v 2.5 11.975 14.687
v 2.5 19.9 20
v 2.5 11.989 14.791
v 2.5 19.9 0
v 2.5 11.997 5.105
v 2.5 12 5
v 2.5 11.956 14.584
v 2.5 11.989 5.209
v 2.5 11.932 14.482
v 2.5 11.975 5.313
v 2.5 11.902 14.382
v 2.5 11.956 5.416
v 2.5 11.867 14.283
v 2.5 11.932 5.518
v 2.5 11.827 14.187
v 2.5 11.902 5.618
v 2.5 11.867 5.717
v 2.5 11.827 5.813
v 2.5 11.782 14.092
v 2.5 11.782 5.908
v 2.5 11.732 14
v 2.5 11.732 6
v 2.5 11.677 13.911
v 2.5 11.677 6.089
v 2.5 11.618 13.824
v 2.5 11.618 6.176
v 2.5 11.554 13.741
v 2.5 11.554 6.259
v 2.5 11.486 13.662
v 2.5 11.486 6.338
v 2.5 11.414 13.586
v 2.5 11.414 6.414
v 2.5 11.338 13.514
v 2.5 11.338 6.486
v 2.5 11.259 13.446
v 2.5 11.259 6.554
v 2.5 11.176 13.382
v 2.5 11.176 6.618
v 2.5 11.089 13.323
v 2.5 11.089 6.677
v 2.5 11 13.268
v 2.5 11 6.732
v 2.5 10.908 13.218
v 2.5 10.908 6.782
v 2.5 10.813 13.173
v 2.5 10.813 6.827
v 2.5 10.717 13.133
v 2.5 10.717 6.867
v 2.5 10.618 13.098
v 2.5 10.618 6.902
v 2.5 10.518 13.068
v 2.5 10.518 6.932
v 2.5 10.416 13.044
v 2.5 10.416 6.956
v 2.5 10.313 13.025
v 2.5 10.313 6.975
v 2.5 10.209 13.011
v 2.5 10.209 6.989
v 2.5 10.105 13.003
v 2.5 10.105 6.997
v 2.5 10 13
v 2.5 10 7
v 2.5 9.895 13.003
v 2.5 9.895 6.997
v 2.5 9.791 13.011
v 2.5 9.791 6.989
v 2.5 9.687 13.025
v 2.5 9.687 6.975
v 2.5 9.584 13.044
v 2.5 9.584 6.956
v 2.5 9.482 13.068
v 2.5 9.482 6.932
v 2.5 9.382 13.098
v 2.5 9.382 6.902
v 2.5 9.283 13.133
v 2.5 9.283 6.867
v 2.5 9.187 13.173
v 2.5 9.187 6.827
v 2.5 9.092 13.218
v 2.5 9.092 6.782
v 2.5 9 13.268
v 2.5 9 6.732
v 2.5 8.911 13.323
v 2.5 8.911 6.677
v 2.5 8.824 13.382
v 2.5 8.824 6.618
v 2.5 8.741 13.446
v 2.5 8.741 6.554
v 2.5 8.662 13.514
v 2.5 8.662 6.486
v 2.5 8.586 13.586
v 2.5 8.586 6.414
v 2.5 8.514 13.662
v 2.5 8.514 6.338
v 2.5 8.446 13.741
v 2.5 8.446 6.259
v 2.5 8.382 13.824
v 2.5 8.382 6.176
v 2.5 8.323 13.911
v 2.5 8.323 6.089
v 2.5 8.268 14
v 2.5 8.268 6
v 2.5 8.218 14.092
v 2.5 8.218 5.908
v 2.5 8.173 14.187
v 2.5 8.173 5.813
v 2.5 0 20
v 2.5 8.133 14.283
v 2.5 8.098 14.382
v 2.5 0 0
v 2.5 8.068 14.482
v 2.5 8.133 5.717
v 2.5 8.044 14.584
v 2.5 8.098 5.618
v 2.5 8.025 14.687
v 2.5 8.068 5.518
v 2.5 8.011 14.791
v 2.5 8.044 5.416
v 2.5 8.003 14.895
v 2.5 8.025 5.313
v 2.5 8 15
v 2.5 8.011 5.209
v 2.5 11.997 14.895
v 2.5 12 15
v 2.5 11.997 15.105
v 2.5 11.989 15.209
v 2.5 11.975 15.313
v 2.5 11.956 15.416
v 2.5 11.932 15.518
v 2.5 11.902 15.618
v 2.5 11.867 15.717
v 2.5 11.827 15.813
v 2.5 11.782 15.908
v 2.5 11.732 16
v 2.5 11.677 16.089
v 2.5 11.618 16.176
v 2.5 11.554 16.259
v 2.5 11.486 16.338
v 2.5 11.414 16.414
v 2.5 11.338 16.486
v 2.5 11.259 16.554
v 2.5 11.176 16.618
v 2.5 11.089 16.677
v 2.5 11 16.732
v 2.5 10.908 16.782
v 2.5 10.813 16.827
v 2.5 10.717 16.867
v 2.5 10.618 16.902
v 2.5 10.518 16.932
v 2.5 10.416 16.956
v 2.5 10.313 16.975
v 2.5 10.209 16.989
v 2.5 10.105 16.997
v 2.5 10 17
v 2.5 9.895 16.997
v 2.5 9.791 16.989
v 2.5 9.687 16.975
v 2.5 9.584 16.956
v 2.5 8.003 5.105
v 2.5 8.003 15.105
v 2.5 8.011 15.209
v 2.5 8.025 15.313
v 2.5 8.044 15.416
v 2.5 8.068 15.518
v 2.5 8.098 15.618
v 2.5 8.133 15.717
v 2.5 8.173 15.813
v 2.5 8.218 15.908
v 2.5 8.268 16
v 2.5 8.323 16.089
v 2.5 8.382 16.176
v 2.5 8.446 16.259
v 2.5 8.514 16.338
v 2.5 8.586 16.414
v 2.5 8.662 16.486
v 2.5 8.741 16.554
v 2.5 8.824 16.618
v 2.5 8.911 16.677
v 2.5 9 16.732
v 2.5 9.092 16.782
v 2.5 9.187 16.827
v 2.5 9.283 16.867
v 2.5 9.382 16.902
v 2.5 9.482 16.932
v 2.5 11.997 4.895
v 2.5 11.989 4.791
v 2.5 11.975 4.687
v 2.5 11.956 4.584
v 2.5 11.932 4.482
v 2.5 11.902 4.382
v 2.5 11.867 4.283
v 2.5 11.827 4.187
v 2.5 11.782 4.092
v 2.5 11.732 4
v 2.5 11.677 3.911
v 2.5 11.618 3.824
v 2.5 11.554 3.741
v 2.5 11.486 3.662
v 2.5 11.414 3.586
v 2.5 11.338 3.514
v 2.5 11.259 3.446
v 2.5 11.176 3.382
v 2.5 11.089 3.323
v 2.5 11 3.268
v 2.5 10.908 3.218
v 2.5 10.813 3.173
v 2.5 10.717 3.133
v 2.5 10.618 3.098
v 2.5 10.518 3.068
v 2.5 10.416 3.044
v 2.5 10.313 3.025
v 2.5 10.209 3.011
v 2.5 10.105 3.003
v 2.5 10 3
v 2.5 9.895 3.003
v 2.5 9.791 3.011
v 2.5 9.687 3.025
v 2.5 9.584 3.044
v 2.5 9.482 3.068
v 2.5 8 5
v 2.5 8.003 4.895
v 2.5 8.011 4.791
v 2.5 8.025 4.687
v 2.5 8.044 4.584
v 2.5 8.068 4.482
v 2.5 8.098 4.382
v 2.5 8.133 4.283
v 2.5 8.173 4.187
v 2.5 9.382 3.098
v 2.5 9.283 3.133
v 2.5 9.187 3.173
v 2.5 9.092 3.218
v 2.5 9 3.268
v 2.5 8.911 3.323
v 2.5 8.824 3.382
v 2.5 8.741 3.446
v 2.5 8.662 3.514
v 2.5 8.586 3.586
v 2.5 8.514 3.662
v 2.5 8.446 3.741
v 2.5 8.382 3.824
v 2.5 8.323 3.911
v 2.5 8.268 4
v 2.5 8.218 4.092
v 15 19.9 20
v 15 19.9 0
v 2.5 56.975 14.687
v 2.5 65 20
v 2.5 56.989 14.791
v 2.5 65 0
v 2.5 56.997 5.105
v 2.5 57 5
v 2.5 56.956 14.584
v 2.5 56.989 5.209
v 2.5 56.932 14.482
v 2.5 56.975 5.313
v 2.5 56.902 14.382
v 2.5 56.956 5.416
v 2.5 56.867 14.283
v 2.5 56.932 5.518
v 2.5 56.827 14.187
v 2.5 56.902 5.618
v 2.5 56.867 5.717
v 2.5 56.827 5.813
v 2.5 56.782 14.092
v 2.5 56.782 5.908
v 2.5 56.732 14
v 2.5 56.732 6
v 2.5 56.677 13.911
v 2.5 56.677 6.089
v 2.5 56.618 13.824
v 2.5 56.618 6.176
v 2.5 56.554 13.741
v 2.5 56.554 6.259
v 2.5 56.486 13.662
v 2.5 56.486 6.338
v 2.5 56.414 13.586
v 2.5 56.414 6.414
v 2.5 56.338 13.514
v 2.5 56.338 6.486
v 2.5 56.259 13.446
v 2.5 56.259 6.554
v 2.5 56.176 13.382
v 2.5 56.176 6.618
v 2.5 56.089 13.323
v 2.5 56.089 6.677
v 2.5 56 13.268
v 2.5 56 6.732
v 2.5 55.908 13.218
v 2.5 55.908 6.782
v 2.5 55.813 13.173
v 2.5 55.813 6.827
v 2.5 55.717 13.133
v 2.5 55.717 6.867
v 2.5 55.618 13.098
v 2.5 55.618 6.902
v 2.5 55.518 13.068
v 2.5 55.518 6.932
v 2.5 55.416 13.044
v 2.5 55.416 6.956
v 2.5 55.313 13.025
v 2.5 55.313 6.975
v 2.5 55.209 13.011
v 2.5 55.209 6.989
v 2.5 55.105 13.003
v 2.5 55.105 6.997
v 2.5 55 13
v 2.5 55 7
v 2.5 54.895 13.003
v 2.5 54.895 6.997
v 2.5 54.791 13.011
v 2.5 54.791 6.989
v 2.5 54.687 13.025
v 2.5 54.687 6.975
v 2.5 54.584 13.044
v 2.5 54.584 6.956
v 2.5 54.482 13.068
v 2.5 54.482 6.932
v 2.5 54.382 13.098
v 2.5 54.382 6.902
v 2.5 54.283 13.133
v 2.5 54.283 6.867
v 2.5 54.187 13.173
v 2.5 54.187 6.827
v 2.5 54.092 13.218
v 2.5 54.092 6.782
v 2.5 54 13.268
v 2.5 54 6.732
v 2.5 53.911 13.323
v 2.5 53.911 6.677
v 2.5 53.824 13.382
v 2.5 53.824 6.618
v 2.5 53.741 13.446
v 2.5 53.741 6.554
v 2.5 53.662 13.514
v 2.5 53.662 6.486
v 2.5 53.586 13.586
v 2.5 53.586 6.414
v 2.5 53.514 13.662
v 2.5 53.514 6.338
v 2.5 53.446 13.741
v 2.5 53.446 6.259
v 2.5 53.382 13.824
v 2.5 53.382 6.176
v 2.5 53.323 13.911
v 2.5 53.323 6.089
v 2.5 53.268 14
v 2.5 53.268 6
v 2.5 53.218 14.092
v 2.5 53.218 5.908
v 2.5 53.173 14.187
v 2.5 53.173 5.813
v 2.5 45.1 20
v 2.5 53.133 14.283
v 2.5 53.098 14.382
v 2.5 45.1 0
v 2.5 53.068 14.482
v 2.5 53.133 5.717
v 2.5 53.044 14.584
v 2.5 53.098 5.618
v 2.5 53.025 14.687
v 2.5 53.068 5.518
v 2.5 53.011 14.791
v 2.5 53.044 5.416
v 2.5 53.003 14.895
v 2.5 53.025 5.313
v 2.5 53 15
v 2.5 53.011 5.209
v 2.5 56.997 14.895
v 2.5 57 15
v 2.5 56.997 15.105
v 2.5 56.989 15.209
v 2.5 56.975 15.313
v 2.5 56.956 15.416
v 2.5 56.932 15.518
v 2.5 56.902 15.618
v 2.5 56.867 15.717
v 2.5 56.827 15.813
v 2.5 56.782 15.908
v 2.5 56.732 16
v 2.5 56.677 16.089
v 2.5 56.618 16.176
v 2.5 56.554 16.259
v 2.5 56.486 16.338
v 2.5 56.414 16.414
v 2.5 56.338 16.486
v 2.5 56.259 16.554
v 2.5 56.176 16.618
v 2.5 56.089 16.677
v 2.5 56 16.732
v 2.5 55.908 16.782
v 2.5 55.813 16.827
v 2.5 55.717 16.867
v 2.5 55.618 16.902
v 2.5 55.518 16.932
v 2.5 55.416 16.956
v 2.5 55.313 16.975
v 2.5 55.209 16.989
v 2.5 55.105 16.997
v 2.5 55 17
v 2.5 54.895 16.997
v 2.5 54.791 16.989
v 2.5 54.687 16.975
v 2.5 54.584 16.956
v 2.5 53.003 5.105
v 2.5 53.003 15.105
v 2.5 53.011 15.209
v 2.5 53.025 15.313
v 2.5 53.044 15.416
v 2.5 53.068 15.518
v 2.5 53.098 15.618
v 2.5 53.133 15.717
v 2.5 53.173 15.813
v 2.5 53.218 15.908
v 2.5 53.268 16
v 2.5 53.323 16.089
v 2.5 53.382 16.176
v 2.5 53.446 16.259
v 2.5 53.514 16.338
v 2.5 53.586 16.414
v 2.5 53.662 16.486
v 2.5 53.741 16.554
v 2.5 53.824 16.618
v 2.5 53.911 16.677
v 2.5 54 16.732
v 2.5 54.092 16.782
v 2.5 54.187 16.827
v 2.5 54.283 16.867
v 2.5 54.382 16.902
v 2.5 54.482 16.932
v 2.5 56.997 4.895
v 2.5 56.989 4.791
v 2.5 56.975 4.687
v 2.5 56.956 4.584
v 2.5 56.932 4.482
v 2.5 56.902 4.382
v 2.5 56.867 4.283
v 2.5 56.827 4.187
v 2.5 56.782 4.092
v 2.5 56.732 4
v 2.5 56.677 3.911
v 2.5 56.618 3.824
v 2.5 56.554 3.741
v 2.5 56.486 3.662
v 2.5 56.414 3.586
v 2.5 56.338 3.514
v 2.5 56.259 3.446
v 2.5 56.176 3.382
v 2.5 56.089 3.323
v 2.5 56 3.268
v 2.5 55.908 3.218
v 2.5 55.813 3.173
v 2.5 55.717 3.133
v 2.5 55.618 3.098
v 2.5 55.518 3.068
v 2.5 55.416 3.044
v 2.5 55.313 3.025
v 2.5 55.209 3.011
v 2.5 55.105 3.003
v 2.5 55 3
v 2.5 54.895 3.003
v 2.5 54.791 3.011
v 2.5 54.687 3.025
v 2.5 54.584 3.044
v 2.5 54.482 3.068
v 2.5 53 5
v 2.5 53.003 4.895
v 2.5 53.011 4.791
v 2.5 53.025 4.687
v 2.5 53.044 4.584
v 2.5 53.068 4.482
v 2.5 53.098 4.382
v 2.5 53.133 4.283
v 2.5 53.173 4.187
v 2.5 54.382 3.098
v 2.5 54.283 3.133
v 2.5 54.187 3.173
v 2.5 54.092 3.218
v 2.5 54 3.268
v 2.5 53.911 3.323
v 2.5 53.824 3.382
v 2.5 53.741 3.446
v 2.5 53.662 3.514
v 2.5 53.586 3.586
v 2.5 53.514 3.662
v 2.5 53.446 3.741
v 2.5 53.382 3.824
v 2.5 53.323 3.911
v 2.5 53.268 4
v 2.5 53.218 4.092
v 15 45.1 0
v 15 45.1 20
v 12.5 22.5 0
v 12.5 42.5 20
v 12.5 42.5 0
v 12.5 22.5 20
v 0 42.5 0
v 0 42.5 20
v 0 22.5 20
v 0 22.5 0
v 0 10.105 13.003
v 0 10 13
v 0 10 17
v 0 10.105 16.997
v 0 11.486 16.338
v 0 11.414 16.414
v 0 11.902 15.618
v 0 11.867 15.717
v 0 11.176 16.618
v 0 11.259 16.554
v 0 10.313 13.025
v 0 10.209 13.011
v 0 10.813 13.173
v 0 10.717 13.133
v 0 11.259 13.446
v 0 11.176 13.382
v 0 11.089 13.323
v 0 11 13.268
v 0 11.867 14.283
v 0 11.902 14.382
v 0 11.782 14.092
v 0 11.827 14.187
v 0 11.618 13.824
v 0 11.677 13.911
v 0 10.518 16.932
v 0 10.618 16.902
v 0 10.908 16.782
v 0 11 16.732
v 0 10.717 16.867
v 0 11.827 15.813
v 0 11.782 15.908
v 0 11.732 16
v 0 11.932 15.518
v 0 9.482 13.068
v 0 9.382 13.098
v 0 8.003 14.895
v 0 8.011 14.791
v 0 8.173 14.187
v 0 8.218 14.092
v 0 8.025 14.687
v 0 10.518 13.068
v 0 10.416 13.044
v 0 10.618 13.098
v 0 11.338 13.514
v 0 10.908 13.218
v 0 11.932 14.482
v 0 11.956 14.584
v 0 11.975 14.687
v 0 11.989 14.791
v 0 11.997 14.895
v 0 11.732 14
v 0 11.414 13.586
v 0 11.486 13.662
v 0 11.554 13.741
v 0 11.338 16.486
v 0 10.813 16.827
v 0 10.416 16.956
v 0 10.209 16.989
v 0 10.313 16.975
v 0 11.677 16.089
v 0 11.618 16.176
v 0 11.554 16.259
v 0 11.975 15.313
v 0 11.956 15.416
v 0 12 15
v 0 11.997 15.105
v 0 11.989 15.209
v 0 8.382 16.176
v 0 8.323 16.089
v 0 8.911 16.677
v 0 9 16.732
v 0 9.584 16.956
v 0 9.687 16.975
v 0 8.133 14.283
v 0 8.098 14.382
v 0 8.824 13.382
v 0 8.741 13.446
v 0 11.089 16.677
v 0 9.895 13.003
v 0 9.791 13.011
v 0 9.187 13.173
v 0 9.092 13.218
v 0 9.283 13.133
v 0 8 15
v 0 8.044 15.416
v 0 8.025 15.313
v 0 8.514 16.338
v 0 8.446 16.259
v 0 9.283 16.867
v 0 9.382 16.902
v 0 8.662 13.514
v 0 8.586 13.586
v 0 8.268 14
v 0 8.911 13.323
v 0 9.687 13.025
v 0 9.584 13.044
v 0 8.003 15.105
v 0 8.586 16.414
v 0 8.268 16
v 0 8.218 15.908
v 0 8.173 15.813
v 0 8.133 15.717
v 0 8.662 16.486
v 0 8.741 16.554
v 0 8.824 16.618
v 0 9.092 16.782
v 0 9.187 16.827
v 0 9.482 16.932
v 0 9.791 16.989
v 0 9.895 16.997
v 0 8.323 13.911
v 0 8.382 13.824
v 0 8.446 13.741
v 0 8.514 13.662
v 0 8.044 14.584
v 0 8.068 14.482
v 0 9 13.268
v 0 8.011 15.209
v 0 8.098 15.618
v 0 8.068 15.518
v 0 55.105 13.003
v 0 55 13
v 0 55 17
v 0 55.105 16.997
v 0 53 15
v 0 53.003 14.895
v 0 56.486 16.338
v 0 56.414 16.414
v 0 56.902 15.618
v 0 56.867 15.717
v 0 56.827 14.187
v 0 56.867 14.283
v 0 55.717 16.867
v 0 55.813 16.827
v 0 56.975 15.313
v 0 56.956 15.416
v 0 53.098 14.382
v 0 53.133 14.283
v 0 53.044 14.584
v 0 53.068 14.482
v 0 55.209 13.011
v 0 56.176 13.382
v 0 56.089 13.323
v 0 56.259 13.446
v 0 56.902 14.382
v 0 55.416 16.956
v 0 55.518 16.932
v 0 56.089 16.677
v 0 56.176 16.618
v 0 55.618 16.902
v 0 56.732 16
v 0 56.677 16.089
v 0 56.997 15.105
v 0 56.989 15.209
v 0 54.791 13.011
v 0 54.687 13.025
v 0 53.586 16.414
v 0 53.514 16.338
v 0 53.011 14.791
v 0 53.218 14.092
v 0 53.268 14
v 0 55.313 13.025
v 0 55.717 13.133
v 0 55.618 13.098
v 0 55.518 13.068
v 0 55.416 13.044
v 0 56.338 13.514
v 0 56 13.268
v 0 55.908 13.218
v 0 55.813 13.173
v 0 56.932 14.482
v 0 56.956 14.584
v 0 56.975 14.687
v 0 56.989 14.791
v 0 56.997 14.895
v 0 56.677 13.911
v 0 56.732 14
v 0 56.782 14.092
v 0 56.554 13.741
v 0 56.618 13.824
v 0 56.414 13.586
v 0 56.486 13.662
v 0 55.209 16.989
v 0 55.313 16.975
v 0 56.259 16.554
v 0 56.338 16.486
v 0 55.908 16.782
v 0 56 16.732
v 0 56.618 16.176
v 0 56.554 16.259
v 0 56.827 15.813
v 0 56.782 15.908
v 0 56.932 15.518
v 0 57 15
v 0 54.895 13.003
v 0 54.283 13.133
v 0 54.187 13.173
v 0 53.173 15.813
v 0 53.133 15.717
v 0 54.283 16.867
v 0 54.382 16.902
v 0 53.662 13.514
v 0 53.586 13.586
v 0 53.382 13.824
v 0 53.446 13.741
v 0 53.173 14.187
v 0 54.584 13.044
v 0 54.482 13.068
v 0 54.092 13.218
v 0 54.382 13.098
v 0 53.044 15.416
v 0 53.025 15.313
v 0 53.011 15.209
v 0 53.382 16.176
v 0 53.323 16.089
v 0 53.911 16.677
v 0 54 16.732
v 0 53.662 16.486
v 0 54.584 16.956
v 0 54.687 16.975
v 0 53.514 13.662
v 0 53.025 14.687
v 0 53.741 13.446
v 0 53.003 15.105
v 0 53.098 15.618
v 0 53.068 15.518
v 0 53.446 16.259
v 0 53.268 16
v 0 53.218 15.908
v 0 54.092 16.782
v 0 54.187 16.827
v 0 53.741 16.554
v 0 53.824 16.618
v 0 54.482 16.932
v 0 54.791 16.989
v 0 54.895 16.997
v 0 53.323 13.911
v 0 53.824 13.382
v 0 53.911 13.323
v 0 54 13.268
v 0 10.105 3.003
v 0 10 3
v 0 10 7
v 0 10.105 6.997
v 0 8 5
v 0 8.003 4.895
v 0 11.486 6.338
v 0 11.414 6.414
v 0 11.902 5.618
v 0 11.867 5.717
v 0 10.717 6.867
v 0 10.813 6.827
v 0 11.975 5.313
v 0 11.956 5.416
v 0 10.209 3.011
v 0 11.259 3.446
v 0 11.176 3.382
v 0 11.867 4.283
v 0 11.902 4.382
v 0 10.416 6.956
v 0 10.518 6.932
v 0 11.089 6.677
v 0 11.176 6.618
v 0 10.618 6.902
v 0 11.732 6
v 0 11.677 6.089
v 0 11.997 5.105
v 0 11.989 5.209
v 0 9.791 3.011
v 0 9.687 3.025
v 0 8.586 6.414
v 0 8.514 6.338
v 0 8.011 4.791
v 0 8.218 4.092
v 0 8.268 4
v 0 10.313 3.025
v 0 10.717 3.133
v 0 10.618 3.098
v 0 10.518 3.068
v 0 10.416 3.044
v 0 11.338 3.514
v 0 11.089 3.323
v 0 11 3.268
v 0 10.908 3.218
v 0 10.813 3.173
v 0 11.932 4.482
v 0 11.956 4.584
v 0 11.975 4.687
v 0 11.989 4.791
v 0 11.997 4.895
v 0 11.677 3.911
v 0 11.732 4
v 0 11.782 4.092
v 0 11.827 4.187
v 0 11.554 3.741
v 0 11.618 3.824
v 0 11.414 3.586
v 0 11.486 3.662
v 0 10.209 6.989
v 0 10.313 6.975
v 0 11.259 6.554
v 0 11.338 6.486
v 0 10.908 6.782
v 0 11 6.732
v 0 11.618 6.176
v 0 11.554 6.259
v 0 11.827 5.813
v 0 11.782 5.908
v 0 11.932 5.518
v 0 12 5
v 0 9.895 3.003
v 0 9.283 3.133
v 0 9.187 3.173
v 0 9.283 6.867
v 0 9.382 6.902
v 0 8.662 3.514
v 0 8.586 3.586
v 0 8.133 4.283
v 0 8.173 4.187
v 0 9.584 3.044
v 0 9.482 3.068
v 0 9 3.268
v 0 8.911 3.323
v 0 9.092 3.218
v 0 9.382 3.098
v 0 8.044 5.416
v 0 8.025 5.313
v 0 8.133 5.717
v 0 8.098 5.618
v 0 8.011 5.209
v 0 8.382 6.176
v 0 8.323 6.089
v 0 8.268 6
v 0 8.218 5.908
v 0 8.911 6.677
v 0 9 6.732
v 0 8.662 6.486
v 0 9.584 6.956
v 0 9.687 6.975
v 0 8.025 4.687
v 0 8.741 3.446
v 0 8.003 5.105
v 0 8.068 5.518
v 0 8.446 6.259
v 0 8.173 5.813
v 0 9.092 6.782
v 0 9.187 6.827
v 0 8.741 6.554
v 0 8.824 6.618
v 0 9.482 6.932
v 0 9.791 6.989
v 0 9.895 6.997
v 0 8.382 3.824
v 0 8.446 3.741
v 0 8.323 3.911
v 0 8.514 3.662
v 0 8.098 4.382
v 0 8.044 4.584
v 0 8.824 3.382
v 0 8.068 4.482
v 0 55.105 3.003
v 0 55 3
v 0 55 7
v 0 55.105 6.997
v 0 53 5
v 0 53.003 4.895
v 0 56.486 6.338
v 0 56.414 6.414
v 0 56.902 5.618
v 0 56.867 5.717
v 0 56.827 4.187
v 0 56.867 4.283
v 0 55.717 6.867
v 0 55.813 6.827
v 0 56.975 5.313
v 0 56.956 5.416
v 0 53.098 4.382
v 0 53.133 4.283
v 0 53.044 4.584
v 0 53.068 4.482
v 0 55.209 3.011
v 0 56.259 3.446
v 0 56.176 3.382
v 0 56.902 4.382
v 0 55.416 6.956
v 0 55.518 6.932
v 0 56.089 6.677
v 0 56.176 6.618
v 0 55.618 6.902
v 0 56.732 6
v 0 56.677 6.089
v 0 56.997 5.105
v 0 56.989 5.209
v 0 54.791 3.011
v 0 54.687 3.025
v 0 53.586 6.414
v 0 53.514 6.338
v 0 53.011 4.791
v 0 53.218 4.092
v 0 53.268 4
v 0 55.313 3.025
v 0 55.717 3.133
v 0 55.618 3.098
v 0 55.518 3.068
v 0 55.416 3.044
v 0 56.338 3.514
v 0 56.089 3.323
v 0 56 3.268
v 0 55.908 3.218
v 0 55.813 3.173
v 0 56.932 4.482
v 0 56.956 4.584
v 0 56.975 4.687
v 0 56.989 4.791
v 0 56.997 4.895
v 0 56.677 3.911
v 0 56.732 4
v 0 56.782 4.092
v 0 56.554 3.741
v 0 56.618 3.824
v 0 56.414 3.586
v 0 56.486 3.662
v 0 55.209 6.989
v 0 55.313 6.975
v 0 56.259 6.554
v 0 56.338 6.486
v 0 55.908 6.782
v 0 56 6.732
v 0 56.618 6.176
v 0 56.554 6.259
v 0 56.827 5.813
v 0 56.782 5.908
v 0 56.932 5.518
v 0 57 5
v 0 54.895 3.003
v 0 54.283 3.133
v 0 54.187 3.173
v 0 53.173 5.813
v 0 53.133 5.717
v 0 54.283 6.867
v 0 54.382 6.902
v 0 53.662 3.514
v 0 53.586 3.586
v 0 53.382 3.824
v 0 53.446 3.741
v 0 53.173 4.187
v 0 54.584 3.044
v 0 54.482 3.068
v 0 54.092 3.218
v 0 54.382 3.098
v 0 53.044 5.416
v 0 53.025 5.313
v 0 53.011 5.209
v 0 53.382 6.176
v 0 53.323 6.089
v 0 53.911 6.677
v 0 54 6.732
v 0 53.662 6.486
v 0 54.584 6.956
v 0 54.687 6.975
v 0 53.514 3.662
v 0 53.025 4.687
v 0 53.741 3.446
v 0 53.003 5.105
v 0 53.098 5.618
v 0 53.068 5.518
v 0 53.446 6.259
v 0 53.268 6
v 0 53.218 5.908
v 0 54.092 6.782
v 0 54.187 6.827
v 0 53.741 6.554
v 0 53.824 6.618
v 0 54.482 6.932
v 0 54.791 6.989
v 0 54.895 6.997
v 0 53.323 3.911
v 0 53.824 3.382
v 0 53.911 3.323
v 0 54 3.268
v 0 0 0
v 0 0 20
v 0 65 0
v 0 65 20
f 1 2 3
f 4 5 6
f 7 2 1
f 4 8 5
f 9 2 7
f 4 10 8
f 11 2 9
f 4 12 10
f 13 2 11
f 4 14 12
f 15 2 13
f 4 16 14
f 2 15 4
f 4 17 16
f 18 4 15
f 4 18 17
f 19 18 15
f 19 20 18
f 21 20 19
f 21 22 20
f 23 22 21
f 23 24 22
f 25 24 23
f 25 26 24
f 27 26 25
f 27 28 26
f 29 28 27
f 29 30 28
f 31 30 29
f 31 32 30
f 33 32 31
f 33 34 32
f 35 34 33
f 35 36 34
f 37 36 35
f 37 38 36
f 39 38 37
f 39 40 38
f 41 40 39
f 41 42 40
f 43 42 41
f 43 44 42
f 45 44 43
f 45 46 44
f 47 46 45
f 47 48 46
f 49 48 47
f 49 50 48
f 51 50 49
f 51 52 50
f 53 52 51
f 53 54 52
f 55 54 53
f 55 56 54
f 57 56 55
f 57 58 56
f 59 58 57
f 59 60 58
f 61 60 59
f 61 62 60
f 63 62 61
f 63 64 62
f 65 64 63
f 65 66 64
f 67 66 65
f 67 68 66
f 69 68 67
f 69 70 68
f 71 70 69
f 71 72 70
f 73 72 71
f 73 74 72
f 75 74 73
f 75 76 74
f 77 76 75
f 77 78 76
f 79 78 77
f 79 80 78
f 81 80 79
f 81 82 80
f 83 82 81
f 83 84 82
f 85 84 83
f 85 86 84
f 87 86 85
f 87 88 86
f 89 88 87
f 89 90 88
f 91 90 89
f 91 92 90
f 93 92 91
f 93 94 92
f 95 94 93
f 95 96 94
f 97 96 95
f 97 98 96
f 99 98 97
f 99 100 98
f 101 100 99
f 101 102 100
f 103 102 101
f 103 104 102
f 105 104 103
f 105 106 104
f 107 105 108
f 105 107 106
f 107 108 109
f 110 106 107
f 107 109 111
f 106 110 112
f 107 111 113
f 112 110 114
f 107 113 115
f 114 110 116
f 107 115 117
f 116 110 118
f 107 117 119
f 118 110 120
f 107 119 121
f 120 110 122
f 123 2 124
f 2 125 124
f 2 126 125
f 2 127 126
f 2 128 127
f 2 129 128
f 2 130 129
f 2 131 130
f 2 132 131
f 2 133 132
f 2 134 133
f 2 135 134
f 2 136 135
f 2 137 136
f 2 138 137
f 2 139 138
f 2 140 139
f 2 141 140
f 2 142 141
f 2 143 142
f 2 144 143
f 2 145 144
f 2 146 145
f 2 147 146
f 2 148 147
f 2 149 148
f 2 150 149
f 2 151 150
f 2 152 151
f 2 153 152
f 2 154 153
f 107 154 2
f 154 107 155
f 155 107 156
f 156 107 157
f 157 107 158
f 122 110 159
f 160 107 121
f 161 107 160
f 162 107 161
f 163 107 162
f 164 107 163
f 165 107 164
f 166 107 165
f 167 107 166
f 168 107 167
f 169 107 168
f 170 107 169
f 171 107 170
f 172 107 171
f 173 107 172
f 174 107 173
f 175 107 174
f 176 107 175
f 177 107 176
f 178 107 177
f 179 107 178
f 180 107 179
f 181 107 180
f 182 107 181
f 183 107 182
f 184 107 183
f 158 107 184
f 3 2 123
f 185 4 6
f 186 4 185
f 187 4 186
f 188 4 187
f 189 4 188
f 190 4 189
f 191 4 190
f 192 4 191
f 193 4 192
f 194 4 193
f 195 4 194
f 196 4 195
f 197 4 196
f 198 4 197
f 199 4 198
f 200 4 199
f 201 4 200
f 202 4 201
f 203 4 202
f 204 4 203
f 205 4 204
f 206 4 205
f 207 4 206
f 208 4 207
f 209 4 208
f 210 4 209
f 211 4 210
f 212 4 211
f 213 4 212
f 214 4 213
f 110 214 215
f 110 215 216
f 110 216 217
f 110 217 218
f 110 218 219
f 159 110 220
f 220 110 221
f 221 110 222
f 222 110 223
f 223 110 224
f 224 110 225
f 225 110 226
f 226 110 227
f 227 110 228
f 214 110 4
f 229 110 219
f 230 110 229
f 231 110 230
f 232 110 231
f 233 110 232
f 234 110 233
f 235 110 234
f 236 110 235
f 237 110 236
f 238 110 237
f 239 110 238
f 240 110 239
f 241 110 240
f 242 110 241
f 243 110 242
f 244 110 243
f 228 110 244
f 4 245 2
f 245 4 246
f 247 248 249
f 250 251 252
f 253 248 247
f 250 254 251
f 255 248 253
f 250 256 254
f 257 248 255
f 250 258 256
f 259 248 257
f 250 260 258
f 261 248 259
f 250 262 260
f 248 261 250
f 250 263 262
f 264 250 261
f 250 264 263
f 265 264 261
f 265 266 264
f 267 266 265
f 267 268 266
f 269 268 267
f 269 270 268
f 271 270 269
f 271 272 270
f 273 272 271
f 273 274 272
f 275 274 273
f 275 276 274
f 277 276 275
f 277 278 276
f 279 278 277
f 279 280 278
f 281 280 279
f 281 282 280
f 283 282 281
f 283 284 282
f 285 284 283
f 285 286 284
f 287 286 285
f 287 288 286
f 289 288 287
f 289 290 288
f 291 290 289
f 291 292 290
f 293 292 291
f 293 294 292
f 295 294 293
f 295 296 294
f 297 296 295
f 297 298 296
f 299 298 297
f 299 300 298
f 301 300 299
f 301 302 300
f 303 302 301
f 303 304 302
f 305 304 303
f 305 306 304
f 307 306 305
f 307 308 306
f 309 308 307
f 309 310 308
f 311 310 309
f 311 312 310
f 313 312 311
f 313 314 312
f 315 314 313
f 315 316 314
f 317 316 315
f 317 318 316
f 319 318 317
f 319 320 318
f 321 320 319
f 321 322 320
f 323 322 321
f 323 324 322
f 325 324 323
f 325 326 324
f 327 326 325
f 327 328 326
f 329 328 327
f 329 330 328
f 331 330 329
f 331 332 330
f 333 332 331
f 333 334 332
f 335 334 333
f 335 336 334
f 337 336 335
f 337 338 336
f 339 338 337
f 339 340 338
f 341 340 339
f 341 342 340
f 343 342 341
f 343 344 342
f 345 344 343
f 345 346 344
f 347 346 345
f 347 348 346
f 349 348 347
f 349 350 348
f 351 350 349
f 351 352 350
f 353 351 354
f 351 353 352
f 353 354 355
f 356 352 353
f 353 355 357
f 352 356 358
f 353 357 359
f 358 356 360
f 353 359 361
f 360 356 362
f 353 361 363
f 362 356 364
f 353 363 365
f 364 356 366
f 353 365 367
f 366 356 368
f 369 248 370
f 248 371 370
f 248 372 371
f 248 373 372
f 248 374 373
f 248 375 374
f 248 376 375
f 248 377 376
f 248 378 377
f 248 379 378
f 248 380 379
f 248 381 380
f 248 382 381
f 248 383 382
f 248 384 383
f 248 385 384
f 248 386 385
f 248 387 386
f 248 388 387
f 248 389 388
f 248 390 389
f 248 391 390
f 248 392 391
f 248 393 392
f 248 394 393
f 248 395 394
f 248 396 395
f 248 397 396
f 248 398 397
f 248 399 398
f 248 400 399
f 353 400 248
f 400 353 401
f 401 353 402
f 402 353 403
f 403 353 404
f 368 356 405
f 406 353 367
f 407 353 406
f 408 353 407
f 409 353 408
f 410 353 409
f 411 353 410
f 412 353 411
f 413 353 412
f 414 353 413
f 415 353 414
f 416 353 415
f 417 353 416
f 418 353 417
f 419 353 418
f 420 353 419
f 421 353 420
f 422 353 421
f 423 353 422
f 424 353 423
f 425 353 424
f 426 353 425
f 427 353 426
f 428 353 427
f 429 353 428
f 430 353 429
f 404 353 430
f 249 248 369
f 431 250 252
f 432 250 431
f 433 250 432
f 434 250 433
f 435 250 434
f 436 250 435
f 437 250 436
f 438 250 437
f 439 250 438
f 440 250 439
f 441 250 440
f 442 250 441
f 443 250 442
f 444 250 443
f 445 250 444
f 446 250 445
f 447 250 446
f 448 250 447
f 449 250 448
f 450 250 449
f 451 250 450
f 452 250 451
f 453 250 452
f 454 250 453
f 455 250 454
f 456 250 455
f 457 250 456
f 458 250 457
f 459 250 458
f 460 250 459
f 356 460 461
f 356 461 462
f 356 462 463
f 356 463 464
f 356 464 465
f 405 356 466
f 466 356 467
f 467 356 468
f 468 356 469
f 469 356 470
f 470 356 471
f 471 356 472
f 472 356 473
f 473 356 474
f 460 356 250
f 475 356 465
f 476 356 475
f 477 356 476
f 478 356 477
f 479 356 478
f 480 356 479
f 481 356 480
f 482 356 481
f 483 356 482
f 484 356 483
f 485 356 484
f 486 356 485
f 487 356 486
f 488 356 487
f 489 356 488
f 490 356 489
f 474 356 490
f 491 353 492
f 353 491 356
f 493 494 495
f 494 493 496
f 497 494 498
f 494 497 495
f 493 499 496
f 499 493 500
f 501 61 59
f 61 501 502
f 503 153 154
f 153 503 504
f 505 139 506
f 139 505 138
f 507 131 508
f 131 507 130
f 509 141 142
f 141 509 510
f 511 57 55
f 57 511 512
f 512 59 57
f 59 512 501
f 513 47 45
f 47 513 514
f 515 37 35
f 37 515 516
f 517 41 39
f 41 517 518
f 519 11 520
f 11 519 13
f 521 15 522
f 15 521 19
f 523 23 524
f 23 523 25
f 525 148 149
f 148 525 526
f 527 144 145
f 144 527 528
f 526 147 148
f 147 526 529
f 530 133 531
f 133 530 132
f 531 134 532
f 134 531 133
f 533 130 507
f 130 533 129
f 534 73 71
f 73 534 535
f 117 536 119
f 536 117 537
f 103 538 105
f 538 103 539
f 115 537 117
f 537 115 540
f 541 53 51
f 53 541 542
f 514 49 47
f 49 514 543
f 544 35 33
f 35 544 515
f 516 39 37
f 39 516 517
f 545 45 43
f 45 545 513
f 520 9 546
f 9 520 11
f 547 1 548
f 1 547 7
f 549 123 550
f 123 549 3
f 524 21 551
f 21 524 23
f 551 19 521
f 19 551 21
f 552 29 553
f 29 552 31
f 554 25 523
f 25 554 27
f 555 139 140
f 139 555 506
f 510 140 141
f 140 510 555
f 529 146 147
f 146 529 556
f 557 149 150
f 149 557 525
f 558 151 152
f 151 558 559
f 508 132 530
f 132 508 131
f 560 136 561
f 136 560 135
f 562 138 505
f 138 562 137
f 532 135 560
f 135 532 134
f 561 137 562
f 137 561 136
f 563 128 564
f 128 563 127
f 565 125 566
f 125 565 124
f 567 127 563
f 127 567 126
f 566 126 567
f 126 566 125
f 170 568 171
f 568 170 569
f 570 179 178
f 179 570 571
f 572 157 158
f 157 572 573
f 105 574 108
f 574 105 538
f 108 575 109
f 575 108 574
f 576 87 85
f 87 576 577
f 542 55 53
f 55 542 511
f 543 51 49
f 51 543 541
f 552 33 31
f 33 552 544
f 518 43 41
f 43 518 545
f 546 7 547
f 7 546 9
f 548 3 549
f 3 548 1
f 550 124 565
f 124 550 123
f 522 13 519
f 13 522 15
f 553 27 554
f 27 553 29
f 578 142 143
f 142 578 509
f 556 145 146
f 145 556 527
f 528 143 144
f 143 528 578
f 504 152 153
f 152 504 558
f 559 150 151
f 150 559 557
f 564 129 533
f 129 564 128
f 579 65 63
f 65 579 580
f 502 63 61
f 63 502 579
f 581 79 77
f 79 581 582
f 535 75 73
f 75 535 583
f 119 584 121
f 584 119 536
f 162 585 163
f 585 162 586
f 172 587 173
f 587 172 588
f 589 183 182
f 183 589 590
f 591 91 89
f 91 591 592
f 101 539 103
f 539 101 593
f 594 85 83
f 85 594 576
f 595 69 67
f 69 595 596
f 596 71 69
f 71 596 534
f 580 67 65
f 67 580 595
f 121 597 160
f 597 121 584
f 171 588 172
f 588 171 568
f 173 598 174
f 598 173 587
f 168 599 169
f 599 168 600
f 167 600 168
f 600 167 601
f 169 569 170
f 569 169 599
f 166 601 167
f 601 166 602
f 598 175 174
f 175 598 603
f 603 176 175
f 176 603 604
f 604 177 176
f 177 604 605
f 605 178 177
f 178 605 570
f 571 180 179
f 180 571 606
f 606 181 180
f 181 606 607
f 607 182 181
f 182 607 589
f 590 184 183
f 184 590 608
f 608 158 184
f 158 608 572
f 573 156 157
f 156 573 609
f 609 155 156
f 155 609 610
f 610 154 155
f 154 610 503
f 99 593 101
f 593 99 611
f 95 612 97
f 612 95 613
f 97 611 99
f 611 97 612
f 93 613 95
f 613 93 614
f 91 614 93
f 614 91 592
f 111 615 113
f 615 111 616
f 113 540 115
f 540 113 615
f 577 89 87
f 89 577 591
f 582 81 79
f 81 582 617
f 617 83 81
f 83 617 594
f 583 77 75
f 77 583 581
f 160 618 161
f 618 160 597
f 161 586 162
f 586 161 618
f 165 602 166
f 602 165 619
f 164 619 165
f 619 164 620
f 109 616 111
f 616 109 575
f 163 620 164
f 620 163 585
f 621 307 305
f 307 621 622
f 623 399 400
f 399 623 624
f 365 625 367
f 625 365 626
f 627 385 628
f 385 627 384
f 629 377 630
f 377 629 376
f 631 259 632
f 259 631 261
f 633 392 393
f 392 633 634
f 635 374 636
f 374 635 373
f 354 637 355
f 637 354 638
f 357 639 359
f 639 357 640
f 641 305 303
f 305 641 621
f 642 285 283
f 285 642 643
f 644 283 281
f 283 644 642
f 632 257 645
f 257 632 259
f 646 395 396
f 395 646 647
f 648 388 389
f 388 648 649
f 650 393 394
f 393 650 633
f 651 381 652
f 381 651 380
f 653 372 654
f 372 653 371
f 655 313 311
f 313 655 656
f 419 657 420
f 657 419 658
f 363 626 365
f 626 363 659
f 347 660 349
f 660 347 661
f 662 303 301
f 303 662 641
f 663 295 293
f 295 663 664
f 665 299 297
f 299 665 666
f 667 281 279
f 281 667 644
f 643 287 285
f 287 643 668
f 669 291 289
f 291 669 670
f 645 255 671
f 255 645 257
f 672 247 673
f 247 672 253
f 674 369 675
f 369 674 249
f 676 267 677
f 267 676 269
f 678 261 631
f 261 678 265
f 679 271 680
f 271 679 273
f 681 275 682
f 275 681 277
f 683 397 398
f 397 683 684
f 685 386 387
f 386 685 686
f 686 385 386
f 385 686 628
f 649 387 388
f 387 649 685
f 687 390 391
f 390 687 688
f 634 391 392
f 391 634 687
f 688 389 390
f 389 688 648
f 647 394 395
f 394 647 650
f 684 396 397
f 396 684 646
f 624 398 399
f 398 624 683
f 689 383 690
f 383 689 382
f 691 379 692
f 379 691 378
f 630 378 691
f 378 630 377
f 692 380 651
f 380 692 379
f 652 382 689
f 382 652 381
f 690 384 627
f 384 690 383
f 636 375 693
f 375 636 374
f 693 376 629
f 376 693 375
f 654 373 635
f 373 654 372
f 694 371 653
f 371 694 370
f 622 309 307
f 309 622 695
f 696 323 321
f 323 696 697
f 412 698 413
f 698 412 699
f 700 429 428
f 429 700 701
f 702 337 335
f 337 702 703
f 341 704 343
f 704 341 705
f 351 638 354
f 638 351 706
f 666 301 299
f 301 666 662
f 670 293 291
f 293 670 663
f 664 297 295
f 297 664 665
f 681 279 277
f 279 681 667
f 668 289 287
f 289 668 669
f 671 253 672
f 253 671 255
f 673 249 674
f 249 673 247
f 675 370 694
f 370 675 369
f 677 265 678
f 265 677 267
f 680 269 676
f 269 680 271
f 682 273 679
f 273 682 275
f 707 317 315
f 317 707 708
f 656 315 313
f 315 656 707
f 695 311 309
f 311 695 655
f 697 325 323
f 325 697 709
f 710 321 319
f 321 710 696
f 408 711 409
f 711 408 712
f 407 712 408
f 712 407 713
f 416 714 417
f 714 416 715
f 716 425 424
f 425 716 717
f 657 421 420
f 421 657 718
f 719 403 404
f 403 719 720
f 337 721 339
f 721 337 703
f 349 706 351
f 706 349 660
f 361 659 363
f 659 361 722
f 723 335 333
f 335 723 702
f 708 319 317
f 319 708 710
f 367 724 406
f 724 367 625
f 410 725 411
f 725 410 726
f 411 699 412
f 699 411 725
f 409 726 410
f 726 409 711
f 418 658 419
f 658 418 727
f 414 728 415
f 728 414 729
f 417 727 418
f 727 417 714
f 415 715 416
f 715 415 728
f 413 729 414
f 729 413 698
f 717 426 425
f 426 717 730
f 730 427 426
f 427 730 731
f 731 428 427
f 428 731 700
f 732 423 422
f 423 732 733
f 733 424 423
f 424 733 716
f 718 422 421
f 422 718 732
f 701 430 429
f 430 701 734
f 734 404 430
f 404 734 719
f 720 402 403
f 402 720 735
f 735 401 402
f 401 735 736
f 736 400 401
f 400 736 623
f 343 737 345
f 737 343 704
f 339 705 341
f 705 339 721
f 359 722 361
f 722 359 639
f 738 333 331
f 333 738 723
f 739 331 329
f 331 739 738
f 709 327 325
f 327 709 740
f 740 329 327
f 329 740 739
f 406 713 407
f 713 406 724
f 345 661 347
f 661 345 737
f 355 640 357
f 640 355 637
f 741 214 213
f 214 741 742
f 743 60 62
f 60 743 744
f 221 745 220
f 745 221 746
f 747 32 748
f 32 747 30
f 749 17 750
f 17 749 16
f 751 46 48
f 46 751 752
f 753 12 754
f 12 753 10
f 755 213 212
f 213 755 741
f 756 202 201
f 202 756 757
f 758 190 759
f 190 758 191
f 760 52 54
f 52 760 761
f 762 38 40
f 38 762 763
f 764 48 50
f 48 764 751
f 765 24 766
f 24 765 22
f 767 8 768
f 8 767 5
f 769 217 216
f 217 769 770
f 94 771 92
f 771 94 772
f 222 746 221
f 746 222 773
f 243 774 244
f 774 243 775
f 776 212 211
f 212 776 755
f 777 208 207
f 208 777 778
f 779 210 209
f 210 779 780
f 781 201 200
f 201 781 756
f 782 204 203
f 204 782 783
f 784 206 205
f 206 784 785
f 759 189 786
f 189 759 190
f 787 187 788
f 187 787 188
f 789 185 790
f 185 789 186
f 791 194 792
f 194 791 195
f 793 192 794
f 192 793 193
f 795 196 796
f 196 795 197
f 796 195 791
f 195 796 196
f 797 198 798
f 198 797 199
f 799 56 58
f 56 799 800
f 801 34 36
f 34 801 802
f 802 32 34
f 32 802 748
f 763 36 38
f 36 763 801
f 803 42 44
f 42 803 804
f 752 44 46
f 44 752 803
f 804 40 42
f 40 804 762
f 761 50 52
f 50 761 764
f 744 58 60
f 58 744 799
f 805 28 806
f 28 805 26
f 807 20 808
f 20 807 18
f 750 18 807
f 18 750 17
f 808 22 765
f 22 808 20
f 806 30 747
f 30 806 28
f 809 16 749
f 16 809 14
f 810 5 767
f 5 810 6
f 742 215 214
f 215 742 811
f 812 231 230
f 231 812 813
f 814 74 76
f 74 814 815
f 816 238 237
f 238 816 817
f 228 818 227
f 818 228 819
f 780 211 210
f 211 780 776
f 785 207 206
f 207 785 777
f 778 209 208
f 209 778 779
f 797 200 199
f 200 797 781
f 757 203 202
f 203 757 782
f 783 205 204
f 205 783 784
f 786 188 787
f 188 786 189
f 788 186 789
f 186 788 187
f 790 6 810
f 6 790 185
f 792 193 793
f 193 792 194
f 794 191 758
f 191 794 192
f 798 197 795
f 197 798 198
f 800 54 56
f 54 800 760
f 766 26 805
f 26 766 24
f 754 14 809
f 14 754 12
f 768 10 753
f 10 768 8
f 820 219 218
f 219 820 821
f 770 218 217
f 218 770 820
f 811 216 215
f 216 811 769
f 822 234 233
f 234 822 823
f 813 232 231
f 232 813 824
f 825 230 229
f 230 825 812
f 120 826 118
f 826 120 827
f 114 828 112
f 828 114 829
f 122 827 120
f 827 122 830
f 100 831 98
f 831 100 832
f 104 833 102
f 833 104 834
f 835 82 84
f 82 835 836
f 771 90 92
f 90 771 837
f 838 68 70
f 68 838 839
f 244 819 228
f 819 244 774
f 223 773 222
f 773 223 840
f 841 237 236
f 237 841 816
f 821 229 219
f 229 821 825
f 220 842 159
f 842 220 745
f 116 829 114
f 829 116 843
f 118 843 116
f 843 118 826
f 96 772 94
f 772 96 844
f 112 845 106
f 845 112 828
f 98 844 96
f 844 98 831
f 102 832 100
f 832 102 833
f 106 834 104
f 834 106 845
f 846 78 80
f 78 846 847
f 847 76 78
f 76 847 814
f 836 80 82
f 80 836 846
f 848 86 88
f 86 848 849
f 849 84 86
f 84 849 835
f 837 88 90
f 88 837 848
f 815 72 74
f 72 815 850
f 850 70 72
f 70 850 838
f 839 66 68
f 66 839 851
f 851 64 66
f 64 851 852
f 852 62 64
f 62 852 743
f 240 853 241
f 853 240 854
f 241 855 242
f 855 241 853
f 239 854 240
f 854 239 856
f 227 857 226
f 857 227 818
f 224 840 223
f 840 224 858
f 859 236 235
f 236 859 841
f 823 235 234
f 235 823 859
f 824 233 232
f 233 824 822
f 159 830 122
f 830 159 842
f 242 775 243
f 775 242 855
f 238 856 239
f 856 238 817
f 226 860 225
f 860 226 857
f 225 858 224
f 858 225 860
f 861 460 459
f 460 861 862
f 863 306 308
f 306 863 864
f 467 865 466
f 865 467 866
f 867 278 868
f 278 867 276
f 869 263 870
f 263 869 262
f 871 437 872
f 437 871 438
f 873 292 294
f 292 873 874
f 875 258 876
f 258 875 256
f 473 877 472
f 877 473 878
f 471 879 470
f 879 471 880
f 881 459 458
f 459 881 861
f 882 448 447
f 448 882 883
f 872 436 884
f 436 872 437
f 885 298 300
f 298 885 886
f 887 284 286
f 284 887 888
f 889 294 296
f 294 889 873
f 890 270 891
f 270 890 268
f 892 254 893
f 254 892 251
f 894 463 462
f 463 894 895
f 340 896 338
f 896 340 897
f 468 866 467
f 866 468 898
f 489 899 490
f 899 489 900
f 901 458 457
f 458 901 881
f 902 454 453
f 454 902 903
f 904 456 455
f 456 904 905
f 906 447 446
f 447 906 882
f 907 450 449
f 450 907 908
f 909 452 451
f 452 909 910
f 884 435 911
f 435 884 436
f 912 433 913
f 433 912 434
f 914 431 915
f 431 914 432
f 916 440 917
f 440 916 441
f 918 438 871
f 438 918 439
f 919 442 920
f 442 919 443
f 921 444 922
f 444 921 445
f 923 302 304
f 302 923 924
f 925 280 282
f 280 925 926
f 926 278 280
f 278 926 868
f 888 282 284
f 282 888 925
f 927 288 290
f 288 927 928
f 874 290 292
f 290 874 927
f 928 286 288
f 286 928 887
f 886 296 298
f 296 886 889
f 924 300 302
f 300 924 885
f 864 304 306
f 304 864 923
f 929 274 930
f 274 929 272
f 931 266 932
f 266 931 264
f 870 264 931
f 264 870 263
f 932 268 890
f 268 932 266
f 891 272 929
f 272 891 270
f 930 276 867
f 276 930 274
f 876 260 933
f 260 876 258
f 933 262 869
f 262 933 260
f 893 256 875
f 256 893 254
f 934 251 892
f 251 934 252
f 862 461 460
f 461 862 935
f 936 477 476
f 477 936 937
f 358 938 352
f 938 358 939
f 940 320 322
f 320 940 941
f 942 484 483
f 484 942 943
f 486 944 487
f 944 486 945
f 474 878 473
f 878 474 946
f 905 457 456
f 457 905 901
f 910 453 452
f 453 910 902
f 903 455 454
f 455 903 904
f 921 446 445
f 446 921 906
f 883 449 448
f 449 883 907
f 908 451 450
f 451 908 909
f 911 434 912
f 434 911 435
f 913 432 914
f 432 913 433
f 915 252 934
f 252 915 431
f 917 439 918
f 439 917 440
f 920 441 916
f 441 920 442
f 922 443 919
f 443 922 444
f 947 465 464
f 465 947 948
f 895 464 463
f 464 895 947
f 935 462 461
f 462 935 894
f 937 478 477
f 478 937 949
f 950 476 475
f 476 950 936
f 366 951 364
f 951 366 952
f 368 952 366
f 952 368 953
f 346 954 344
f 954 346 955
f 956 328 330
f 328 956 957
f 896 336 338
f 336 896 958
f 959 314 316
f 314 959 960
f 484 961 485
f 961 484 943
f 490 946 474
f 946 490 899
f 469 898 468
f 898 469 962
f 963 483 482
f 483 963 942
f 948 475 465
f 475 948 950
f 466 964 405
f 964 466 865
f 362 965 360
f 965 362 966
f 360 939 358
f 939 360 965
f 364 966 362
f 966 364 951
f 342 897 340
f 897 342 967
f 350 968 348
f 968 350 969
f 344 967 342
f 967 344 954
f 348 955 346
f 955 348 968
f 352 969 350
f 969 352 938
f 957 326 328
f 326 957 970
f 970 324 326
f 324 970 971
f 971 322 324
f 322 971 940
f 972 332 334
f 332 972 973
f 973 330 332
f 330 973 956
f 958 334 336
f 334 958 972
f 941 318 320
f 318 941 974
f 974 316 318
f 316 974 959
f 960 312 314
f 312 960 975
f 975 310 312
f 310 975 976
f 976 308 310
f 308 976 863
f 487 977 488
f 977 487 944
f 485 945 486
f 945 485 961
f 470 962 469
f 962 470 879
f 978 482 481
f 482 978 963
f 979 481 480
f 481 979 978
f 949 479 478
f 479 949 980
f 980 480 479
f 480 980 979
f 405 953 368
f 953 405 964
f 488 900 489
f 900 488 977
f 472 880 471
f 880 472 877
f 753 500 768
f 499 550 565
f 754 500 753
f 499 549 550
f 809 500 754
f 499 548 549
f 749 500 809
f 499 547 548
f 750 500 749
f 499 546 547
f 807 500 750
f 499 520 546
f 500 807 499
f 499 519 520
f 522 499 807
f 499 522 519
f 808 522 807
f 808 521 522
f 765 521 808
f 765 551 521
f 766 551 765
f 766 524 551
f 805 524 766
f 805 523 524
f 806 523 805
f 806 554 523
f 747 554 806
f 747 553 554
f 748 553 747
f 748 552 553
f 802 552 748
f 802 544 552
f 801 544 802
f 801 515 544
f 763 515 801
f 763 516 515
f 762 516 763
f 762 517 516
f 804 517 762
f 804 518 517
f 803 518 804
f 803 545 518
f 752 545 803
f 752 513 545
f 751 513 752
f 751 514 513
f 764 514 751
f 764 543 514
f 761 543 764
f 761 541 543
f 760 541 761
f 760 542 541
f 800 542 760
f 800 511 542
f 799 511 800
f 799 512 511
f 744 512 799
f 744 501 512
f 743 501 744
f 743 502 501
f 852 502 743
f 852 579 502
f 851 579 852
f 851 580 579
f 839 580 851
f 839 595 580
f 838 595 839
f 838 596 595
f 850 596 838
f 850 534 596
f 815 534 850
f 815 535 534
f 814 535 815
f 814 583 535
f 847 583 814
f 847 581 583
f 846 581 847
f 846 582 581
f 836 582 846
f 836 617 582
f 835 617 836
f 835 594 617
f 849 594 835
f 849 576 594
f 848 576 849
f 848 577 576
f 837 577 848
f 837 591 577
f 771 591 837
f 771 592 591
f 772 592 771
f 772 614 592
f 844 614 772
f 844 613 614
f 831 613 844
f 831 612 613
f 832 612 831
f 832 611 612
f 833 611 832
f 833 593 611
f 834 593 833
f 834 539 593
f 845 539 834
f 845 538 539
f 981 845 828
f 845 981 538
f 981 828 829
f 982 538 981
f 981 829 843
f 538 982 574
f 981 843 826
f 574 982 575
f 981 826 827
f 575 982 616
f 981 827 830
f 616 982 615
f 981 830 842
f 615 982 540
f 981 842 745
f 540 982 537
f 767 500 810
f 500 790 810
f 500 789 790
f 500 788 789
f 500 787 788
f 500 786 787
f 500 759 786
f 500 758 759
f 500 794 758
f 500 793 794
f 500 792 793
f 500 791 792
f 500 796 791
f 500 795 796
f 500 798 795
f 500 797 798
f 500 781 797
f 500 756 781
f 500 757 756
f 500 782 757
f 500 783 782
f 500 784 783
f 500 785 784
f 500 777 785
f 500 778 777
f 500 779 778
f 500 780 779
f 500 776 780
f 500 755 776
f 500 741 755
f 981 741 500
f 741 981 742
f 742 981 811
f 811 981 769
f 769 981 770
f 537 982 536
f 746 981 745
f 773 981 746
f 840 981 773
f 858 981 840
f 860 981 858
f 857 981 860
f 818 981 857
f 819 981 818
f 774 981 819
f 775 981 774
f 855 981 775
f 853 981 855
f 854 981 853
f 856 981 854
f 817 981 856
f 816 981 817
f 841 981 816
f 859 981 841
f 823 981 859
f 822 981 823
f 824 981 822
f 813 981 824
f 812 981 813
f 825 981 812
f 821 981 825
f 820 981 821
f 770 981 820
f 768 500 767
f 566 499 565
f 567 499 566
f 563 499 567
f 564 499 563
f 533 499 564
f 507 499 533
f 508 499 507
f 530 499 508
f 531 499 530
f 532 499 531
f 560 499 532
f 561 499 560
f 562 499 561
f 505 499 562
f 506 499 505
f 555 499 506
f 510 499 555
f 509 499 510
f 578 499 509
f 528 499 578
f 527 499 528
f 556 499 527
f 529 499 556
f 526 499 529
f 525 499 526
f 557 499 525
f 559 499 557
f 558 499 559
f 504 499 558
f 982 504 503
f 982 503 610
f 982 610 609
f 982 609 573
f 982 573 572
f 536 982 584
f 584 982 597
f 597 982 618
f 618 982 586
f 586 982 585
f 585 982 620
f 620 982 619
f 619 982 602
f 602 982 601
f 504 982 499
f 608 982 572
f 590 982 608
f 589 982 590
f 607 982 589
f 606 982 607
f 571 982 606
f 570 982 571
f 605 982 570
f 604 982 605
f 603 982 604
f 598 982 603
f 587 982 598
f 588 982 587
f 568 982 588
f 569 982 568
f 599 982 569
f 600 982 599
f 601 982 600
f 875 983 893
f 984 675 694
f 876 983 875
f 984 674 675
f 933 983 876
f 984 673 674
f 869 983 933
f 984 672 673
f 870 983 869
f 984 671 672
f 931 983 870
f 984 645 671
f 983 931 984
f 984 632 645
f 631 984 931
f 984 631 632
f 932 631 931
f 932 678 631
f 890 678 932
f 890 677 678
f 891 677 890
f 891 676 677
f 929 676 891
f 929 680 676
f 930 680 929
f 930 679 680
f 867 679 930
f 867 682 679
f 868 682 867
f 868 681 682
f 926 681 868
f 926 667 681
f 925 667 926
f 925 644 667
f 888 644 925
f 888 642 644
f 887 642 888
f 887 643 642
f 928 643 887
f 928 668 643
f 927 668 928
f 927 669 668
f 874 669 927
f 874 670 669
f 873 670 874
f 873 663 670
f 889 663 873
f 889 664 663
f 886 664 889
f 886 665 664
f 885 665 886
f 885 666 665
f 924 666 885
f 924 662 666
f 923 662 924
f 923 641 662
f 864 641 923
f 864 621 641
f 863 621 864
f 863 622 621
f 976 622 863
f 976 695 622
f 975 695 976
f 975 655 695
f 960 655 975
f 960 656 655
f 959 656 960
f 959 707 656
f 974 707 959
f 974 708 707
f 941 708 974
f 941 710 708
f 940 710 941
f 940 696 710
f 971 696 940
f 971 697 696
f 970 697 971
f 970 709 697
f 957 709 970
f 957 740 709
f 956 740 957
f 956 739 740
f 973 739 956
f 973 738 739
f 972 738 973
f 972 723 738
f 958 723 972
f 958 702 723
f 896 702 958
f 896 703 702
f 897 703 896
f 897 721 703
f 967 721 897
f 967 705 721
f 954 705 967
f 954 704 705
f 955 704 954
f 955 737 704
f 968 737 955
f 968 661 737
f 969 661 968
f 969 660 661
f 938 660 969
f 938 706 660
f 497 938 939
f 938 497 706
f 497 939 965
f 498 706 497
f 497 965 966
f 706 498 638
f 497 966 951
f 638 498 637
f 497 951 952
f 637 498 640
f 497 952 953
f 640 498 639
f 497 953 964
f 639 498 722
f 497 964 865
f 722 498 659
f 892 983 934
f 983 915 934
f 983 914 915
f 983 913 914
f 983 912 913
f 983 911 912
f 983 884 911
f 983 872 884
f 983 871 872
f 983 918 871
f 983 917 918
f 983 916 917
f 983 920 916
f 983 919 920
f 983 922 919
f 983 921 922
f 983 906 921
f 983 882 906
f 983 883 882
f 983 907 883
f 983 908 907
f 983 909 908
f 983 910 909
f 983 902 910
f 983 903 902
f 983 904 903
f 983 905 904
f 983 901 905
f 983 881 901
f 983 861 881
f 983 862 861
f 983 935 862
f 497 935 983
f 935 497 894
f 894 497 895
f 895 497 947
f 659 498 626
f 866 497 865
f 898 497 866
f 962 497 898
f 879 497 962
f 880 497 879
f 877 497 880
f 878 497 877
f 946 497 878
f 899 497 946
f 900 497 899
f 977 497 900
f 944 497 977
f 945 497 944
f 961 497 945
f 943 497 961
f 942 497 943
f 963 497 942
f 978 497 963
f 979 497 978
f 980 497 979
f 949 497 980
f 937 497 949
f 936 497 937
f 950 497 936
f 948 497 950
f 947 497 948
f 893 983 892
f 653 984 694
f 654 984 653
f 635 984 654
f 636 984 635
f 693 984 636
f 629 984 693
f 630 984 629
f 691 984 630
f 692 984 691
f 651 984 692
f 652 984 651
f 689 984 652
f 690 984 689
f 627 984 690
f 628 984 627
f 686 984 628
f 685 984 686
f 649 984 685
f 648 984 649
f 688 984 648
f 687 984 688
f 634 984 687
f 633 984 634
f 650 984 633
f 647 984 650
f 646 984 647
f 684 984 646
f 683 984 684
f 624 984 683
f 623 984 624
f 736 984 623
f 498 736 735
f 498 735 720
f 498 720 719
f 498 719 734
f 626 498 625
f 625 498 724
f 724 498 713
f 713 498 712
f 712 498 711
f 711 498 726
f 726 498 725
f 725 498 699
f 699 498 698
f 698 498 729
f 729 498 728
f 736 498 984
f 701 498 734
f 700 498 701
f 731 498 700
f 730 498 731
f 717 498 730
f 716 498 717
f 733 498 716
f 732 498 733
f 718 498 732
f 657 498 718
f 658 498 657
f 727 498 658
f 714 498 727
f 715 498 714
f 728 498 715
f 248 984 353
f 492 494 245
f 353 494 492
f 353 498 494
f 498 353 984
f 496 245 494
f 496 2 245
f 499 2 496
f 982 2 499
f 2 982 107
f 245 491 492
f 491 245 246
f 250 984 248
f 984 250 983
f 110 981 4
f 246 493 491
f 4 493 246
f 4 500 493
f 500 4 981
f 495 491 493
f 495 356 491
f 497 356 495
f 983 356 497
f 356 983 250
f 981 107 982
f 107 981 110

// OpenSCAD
difference()
{
    cube([15, 65, 20]);
    union()
    {
        translate([2.5,-0.1,-1])cube([20,20,37]);
        translate([2.5,45.1,-1])cube([20,20,37]);
        translate([-7.5,22.5,-1])cube([20,20,37]);
        translate([-1,10,15]) rotate([0,90,0]) cylinder(r=2, h=10, $fn=120);
        translate([-1,55,15]) rotate([0,90,0]) cylinder(r=2, h=10, $fn=120);
        translate([-1,10,5]) rotate([0,90,0]) cylinder(r=2, h=10, $fn=120);
        translate([-1,55,5]) rotate([0,90,0]) cylinder(r=2, h=10, $fn=120);
    }    
}
